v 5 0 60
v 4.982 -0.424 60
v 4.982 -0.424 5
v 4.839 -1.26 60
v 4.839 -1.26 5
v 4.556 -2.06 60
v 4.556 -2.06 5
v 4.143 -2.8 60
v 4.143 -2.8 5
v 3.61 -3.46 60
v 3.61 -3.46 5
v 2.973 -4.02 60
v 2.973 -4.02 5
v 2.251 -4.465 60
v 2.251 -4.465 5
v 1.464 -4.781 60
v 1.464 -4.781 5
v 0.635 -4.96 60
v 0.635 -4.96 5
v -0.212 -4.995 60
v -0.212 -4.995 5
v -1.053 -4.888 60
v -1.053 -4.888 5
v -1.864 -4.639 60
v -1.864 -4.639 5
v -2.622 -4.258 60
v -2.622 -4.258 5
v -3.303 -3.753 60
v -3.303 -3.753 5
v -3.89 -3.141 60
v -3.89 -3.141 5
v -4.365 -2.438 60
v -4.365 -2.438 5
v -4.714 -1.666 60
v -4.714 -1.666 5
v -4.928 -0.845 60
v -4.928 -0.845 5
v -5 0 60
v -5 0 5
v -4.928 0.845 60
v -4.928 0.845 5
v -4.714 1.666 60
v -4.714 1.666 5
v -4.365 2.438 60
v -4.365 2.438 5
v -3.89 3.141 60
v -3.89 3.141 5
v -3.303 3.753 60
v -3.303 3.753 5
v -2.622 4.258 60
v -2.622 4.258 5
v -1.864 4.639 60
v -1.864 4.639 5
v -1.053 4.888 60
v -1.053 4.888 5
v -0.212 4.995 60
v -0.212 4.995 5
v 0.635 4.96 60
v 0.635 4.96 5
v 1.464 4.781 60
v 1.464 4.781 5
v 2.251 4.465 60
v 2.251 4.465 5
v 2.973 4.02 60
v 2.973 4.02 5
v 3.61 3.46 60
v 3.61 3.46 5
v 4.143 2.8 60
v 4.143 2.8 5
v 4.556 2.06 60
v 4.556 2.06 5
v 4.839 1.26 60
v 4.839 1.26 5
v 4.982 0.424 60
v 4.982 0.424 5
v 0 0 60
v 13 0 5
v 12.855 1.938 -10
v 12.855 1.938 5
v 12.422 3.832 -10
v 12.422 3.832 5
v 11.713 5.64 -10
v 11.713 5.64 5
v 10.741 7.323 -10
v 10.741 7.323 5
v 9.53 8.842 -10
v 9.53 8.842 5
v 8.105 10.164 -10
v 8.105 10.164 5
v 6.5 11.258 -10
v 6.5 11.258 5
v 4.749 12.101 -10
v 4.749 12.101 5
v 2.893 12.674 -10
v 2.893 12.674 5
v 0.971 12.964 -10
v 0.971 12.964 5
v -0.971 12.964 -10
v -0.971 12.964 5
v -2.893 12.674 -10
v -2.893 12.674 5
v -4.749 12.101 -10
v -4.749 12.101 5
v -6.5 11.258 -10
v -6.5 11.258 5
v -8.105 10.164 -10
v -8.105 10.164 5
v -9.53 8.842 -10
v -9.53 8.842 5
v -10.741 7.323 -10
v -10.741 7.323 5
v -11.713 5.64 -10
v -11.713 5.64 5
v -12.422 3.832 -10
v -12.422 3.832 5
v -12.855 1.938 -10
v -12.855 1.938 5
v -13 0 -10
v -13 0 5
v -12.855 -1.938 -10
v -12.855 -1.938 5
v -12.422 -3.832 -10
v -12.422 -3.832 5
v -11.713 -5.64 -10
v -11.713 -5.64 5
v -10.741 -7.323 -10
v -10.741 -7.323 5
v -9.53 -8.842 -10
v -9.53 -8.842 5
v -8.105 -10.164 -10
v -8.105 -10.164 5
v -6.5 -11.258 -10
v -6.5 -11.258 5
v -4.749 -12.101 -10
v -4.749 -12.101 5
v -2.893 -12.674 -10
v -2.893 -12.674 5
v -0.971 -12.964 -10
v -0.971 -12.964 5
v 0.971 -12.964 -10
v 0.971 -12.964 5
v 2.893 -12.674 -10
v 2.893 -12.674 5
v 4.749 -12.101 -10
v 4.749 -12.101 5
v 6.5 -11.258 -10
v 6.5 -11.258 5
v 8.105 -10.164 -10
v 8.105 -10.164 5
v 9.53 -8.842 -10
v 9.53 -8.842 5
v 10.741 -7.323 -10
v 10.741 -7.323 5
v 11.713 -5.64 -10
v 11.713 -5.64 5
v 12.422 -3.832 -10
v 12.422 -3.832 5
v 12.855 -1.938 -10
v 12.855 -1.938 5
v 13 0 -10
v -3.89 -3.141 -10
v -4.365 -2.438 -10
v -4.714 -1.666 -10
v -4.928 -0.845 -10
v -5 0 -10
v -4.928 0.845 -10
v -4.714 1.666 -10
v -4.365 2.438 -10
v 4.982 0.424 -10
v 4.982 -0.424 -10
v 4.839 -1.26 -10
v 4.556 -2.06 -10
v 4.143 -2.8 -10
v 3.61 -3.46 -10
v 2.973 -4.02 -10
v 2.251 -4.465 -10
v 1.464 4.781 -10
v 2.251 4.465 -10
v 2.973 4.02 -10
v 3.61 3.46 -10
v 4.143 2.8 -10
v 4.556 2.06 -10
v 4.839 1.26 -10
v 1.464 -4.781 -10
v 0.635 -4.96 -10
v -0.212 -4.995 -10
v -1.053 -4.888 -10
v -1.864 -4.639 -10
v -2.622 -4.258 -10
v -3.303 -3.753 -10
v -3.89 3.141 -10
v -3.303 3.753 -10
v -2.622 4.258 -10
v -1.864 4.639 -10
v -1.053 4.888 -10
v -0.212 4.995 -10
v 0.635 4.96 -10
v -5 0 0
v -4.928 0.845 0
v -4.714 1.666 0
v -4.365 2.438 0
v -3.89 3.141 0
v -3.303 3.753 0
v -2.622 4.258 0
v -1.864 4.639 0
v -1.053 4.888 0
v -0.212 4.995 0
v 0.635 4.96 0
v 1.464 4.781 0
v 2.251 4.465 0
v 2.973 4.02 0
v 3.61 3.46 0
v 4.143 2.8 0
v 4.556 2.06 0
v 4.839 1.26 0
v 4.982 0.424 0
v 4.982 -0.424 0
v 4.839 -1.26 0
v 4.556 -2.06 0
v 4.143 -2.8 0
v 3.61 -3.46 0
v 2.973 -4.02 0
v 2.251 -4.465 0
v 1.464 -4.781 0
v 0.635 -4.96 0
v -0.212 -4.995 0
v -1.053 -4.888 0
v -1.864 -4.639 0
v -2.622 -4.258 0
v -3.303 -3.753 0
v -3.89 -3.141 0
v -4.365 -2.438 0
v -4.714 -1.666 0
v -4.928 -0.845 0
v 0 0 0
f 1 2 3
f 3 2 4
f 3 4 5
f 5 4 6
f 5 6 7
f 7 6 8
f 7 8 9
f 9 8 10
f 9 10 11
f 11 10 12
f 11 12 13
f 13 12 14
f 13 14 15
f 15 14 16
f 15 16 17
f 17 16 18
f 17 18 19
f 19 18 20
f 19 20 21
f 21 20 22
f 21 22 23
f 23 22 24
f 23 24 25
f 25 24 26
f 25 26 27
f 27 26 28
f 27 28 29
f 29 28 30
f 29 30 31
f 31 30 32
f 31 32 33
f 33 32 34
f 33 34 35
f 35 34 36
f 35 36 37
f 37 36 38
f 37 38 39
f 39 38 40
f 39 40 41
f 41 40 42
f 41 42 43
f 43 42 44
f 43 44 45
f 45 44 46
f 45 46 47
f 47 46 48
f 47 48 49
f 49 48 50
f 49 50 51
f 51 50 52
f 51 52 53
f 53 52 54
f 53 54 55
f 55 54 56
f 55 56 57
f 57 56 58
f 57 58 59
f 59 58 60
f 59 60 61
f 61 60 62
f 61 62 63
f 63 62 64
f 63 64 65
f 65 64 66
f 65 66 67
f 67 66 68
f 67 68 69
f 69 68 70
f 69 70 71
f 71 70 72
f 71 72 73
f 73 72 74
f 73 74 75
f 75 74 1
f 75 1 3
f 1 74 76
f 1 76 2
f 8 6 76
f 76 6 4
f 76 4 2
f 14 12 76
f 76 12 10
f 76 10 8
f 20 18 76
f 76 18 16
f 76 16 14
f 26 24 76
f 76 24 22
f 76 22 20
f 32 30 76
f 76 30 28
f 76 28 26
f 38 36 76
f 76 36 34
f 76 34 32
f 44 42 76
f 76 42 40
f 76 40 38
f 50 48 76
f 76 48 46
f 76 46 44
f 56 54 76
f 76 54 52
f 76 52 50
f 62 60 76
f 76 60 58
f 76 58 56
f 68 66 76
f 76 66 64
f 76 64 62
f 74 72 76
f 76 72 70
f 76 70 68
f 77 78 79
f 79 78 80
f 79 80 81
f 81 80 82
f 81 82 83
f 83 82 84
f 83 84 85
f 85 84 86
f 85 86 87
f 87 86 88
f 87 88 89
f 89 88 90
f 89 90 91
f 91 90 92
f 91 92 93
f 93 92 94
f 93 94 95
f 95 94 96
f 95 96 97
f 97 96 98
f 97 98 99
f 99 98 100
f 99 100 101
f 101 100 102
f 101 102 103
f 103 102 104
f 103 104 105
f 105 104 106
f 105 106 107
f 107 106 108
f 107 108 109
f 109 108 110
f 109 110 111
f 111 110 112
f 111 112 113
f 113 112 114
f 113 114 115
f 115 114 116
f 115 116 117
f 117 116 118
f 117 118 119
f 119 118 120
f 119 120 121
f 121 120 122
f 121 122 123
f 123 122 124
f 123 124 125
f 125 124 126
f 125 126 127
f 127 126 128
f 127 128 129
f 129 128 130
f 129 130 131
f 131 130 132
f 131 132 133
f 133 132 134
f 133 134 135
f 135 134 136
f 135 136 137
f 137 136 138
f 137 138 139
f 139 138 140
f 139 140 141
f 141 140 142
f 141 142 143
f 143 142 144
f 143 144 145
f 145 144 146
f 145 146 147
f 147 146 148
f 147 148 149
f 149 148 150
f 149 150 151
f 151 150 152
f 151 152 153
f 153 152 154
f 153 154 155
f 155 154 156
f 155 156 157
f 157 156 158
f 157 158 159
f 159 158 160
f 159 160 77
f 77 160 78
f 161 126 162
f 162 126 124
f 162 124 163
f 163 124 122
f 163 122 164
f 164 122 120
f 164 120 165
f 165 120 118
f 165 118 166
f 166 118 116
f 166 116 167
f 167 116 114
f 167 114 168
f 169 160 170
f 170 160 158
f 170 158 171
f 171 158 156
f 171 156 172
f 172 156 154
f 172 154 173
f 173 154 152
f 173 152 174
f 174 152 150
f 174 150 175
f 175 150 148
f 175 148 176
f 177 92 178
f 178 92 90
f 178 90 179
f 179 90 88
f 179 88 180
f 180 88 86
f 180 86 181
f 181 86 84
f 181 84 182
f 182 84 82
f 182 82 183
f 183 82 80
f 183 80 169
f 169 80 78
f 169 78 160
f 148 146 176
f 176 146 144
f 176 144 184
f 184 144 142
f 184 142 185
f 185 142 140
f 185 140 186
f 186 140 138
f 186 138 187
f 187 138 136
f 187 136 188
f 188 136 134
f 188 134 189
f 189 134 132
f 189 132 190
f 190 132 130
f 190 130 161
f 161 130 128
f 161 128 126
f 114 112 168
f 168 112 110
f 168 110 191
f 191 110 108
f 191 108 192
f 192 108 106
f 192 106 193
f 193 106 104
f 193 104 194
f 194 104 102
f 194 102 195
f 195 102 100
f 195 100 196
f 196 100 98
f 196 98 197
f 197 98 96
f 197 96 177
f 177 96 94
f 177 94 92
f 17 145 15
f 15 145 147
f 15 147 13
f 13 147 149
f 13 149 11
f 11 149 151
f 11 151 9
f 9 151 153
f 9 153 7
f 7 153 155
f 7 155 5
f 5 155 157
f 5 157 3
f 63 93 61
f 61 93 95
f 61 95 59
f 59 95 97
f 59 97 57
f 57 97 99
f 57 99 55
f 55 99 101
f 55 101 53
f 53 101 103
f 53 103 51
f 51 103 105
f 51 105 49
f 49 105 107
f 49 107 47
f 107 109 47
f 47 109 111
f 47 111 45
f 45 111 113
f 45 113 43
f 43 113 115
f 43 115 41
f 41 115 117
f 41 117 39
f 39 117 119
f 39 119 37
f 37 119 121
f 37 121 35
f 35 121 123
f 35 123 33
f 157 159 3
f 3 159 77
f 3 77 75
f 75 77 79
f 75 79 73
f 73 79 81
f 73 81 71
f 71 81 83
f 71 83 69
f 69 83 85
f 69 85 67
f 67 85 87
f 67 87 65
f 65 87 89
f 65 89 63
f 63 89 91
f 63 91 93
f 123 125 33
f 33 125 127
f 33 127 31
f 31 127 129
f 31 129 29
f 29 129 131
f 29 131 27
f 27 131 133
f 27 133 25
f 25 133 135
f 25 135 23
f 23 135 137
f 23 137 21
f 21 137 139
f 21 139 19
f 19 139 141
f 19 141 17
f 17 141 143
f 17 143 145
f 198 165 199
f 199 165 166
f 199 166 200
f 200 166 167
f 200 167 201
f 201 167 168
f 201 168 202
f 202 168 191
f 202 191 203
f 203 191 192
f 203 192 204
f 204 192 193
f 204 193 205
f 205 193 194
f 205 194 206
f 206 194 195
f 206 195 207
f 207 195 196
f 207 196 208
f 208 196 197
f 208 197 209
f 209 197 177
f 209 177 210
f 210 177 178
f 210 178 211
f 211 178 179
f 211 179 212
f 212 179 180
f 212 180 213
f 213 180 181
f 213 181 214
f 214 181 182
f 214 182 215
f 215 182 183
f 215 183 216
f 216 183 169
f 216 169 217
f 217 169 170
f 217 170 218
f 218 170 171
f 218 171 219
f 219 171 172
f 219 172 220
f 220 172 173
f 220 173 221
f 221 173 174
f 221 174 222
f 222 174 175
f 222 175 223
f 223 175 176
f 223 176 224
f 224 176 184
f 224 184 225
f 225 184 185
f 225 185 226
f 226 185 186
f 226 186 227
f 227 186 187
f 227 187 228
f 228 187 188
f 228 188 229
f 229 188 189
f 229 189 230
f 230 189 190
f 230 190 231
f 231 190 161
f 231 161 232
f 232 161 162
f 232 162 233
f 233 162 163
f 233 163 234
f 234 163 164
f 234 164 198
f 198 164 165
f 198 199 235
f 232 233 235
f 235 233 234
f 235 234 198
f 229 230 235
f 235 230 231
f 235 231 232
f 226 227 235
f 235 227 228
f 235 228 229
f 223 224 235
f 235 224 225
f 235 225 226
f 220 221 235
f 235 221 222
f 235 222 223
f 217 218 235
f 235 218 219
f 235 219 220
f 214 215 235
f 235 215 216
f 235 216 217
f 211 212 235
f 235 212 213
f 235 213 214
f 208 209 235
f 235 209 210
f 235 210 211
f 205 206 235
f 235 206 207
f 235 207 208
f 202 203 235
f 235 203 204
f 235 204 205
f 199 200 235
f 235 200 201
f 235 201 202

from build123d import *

# Parameters (mm, degrees)
SKETCH1_R           = 5
BOSS_EXTRUDE1_DEPTH = 60
SKETCH2_R           = 13
BOSS_EXTRUDE2_DEPTH = 15
SKETCH3_R           = 5
CUT_EXTRUDE2_DEPTH  = 10


with BuildPart() as part:
    # Sketch1 → Boss-Extrude1 (new body)
    with BuildSketch(Plane.XY):
        Circle(SKETCH1_R)
    extrude(amount=BOSS_EXTRUDE1_DEPTH)

    # Sketch2 → Boss-Extrude2 (add)
    with BuildSketch(Plane(origin=(0, 0, 5), x_dir=(-1, 0, 0), z_dir=(0, 0, -1))):
        Circle(SKETCH2_R)
    extrude(amount=BOSS_EXTRUDE2_DEPTH)

    # Sketch3 → Cut-Extrude2 (cut)
    with BuildSketch(Plane(origin=(0, 0, -10), x_dir=(-1, 0, 0), z_dir=(0, 0, -1))):
        Circle(SKETCH3_R)
    extrude(amount=-CUT_EXTRUDE2_DEPTH, mode=Mode.SUBTRACT)


solid = part.part
